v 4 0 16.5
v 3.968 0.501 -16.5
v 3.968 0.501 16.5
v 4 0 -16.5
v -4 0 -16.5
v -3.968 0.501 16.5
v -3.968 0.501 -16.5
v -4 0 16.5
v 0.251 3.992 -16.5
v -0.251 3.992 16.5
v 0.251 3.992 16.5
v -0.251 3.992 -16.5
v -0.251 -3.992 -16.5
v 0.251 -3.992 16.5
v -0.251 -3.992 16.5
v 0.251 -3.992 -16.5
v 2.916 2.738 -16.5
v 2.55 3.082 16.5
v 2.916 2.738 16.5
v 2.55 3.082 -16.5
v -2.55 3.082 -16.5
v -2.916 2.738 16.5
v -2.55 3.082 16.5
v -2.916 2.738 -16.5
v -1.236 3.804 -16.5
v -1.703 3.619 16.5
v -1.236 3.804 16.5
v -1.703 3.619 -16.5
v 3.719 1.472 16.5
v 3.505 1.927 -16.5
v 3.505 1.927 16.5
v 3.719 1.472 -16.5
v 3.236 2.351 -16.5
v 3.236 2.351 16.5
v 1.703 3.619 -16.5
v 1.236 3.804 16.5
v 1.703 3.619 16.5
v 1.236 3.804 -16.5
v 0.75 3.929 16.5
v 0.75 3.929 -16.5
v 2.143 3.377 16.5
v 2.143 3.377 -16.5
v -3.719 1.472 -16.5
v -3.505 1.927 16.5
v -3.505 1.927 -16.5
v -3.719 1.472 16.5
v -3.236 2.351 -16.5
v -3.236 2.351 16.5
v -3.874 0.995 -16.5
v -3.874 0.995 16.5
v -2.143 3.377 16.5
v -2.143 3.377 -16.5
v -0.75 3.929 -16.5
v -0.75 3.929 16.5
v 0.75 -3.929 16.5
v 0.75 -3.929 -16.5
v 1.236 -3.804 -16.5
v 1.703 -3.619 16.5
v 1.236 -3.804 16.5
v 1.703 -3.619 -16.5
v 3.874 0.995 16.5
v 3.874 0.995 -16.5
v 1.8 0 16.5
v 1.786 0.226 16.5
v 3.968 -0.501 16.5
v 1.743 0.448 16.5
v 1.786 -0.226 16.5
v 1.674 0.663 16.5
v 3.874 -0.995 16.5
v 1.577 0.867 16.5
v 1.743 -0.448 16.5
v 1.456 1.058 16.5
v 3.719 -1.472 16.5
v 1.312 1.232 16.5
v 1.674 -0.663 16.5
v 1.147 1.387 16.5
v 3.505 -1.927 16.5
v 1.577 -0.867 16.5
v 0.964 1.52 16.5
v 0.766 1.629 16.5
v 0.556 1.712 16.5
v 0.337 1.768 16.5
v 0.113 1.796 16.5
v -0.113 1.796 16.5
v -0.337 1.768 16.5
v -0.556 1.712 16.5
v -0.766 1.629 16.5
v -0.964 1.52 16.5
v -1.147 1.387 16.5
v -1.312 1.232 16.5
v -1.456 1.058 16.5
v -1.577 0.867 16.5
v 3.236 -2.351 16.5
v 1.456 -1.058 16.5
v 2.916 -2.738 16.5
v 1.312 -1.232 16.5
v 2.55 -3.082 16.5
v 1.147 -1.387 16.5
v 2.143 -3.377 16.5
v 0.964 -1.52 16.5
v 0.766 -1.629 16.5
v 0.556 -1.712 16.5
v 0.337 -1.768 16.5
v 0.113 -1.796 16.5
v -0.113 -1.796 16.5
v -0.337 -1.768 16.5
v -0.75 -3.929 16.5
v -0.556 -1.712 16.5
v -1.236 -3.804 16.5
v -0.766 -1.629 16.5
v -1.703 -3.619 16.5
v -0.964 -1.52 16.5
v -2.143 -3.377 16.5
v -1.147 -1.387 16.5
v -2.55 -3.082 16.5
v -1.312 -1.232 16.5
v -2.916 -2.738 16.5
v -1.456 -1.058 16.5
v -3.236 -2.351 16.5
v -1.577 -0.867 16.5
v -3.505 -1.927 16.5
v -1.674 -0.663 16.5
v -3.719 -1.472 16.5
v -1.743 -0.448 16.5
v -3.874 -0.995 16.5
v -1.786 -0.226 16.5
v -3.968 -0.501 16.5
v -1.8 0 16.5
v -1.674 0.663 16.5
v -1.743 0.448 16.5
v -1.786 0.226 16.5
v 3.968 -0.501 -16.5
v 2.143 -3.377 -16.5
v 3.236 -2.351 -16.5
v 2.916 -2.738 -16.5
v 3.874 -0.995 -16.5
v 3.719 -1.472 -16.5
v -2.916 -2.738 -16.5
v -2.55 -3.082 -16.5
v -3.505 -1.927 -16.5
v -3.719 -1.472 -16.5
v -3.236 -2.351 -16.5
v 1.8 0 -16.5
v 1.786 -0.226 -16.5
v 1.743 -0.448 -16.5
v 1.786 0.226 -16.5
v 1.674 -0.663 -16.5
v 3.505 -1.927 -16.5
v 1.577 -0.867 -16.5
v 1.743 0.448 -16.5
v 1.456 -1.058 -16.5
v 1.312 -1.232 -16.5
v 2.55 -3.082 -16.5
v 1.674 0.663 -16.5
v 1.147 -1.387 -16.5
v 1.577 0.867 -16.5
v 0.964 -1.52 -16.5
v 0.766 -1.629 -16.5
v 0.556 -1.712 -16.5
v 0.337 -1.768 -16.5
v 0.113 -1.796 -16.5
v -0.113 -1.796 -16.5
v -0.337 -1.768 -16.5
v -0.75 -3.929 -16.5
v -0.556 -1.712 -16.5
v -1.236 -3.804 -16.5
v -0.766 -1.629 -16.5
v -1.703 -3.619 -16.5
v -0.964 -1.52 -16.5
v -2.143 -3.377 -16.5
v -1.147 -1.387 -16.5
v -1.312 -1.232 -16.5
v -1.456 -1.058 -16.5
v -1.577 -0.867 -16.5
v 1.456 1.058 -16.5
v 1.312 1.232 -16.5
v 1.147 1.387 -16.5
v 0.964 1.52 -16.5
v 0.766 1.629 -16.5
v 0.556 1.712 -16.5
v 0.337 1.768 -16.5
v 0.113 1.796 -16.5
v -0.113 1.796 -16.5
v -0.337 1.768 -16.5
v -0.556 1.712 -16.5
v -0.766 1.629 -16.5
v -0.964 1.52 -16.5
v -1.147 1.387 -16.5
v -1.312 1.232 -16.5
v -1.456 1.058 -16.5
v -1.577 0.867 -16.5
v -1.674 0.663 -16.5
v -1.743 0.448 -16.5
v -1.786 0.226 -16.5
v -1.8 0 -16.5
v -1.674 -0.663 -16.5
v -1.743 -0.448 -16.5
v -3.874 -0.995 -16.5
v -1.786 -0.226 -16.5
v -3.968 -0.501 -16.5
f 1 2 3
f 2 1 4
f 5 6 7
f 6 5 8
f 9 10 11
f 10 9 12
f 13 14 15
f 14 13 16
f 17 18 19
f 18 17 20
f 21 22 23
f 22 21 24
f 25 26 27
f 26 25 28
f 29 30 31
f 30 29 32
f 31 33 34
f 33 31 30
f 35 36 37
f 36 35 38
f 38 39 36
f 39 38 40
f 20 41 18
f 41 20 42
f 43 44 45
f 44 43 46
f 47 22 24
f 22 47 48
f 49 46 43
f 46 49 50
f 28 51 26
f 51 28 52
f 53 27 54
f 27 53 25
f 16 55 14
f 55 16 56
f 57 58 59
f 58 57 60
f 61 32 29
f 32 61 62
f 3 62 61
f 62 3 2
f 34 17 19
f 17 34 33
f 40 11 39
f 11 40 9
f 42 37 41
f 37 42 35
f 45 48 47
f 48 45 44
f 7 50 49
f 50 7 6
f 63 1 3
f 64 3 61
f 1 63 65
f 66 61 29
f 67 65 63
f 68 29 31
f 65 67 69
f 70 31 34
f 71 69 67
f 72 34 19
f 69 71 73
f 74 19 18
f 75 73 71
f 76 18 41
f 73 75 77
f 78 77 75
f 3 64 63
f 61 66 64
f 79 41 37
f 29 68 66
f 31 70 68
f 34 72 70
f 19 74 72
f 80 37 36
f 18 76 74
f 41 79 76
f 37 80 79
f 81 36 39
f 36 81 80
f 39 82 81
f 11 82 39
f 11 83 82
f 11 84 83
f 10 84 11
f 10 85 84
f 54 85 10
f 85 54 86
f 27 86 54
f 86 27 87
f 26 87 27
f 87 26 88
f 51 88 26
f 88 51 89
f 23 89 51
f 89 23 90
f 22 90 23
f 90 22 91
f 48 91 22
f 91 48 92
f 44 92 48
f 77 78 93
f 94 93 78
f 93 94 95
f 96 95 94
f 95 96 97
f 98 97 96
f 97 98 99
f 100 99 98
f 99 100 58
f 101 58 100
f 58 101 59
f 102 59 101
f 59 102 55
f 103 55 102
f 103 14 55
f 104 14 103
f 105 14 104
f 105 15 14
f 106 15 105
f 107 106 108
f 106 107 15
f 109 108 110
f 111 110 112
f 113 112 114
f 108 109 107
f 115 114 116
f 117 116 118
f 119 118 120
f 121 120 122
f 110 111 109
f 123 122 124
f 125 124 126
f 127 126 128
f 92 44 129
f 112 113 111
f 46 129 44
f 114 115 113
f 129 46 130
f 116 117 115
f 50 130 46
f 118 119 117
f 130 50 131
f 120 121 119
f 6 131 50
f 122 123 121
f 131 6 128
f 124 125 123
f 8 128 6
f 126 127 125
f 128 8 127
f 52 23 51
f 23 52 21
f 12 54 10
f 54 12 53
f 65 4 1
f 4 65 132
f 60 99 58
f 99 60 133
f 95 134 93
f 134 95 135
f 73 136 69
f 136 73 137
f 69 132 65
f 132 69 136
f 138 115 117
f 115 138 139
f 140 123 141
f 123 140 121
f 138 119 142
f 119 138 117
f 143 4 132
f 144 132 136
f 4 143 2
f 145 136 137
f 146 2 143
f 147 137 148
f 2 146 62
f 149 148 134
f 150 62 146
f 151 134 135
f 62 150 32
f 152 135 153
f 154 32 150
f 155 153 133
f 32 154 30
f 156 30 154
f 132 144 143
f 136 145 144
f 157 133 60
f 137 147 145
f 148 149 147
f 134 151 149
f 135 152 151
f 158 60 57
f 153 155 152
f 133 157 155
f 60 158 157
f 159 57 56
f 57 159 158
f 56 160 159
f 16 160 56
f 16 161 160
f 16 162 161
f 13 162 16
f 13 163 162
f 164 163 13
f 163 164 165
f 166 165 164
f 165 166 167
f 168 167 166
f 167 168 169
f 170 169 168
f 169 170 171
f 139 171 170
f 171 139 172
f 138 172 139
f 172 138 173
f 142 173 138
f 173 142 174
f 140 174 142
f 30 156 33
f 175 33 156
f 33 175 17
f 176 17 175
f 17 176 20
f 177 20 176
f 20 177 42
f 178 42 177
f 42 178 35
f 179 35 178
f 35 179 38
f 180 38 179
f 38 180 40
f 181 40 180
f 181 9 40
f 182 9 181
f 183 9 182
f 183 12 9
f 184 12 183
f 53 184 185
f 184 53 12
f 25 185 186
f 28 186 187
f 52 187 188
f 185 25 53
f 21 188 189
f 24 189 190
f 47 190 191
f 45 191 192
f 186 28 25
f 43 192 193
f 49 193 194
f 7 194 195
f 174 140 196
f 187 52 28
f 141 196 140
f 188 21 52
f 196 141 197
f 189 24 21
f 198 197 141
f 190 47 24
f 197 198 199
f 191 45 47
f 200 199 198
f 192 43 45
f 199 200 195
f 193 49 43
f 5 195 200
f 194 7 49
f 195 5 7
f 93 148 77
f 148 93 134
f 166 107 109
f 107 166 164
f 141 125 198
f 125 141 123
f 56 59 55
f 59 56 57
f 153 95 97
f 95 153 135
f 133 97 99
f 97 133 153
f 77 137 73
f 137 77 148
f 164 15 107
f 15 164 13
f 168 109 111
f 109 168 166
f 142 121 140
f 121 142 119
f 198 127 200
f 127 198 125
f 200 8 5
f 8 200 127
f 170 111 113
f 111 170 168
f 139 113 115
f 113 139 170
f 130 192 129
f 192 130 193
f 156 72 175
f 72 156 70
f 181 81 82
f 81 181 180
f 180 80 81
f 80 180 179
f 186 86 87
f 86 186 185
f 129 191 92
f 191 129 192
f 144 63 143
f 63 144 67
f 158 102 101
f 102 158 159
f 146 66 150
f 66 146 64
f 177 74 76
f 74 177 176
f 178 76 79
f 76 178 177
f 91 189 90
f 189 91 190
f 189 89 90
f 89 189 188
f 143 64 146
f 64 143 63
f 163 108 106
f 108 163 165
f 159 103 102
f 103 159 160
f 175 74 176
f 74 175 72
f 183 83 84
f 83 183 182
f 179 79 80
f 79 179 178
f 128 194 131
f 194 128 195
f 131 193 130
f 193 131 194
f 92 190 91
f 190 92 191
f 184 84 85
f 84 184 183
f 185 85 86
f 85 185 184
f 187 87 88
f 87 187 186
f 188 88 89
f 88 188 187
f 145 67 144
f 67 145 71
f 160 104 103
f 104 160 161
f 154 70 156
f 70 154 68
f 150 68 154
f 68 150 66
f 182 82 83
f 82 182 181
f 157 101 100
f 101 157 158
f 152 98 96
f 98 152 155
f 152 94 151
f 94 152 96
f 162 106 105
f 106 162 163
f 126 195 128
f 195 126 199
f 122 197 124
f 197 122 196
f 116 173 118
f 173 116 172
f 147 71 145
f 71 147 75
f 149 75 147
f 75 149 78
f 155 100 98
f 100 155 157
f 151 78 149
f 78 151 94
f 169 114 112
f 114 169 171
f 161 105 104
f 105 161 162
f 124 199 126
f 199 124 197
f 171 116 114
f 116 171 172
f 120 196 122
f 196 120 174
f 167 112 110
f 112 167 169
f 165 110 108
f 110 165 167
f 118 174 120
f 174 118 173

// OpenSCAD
$fn = 50;


difference() {
	union() {
		translate(v = [0, 0, -16.5000000000]) {
			cylinder(h = 33, r = 4.0000000000);
		}
	}
	union() {
		translate(v = [0, 0, -100.0000000000]) {
			cylinder(h = 200, r = 1.8000000000);
		}
	}
}
